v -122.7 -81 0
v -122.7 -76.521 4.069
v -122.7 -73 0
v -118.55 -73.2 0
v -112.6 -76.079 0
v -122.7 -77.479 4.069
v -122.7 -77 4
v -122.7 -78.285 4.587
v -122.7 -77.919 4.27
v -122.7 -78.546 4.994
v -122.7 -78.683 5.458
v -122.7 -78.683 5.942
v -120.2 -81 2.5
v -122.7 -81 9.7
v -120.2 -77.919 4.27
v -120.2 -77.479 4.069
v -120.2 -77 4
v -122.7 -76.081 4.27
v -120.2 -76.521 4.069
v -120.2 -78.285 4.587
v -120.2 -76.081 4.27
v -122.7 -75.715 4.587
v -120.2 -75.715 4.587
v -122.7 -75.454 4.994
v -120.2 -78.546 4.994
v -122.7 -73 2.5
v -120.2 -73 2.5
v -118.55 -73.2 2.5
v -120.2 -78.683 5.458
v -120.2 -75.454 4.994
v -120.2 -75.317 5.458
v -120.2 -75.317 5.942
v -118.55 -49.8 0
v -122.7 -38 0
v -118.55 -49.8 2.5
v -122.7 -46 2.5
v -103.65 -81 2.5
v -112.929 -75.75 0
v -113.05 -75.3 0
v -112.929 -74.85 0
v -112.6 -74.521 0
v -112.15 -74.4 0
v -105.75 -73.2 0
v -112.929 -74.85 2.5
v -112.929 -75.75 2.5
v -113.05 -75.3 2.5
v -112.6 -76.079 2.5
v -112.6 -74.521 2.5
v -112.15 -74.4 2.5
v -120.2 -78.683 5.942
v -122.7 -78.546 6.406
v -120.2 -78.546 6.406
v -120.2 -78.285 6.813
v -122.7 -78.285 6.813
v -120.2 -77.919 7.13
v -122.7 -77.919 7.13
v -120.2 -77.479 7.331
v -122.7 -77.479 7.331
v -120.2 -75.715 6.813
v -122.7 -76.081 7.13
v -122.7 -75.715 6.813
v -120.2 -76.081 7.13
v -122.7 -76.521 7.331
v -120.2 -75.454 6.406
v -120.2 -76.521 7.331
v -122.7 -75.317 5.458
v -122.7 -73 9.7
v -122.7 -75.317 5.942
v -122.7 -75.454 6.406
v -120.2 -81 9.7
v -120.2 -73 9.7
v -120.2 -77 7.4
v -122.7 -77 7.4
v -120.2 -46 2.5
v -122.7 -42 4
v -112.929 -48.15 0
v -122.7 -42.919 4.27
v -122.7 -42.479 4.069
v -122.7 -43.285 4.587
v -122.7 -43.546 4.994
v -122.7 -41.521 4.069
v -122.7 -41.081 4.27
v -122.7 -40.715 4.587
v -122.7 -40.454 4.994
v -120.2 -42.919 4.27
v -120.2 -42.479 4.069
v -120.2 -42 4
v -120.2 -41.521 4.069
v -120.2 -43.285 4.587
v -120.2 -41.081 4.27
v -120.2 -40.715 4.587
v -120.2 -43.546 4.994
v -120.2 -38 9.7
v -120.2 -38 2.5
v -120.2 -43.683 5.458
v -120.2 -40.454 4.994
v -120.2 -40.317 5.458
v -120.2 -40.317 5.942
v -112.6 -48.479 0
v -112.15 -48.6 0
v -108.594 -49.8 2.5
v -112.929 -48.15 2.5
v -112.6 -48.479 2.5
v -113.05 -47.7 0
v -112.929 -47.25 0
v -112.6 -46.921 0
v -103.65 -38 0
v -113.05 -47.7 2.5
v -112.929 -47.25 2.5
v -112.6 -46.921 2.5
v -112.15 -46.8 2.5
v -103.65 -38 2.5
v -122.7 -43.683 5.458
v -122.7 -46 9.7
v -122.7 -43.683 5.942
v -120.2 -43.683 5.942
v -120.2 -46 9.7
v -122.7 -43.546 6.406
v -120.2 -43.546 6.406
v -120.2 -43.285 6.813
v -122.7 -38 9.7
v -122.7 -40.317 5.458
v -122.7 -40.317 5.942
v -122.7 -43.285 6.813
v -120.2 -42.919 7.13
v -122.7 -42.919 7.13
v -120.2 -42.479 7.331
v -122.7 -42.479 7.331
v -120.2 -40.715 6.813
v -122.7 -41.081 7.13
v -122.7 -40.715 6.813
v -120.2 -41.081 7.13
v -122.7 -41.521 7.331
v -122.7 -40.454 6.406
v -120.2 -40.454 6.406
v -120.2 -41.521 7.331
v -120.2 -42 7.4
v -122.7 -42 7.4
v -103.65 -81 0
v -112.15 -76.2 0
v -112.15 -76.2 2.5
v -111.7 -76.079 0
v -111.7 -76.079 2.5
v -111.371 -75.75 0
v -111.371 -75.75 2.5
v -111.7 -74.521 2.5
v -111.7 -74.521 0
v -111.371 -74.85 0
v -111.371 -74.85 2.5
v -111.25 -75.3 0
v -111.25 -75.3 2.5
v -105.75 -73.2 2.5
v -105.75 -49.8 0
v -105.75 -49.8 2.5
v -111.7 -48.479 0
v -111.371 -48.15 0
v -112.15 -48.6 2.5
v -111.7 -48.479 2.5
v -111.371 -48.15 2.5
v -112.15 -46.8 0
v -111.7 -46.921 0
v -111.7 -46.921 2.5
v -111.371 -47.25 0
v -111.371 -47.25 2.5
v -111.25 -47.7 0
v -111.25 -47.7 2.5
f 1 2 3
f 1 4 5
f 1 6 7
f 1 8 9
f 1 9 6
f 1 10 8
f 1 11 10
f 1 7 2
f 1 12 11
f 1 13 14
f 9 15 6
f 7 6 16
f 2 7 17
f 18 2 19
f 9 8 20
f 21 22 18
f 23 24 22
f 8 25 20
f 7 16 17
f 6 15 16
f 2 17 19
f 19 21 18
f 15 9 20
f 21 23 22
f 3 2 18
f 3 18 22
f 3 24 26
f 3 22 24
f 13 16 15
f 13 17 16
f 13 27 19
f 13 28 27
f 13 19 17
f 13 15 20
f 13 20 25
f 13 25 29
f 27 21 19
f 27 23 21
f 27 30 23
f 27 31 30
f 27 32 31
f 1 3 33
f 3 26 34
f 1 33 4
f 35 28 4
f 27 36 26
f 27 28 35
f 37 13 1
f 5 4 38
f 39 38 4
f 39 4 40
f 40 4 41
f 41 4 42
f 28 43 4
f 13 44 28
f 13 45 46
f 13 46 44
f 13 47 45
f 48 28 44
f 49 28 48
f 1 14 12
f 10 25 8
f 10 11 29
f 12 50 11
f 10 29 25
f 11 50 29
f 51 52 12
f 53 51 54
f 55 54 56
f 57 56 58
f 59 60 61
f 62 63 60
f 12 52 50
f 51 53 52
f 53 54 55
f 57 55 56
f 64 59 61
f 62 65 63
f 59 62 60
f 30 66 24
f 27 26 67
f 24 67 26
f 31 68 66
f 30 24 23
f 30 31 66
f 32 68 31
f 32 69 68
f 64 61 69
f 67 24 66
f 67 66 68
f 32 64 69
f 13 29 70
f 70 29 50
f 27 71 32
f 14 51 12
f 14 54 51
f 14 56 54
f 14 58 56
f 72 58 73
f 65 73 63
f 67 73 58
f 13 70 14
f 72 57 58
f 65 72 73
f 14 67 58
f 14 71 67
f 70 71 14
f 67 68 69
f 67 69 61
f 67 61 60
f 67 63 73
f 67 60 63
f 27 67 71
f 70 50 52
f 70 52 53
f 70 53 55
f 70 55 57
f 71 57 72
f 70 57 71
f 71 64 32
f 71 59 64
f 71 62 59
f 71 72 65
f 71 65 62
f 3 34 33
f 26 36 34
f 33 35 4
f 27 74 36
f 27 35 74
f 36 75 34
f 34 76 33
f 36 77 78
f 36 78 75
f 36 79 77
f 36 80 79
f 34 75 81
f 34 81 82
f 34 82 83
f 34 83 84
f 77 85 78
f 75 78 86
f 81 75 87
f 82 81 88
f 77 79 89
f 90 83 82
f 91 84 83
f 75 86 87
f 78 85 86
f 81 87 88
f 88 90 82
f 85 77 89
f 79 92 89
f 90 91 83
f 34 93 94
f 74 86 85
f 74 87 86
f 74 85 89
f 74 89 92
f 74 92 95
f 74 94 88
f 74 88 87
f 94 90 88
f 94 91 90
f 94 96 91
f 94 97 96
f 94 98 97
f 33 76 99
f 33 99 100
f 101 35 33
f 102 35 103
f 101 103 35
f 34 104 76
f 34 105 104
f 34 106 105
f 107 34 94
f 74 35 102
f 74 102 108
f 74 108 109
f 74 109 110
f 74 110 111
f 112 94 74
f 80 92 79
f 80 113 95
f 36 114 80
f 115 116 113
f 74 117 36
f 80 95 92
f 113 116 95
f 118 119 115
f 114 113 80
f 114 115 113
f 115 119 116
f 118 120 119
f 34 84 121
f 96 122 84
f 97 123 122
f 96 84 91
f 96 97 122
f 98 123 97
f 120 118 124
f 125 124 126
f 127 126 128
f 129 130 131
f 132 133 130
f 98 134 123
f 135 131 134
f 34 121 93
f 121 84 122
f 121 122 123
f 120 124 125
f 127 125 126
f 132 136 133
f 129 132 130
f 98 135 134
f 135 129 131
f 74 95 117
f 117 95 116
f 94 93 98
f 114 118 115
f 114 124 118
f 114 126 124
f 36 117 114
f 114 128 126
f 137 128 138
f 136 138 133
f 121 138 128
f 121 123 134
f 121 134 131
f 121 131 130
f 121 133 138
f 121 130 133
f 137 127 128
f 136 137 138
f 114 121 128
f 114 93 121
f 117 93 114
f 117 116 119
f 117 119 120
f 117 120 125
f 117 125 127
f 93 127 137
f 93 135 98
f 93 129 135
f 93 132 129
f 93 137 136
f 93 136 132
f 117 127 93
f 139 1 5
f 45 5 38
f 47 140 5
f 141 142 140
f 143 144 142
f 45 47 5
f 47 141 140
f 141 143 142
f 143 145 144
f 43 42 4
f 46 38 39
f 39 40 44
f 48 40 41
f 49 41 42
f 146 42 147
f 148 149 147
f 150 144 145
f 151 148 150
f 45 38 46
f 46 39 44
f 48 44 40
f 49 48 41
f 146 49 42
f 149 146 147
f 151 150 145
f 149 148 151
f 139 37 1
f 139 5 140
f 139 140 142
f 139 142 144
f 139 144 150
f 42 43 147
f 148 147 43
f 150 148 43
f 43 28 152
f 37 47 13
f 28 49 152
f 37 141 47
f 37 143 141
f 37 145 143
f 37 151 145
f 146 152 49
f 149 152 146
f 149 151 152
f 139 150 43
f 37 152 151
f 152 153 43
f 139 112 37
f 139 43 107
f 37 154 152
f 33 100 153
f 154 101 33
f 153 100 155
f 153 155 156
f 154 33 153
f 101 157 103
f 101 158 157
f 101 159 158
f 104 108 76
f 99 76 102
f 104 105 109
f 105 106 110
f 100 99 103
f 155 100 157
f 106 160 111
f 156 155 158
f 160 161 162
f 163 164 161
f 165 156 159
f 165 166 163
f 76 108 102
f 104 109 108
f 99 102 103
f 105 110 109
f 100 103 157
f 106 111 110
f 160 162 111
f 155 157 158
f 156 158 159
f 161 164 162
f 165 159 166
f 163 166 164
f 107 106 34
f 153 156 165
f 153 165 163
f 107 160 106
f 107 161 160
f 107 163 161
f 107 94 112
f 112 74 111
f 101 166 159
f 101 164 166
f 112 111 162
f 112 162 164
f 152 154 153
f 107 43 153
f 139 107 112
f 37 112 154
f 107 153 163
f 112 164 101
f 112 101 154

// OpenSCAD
// file: lib/lib.scad
// Shared helpers. Include AFTER params.scad (needs TOL, M3_* etc.).
$fa = 4; $fs = 0.5;

module rrect(size, r) {            // 2D rounded rectangle, centred
    r2 = min(r, min(size[0], size[1]) / 2 - 0.001);
    offset(r = r2) square([size[0] - 2 * r2, size[1] - 2 * r2], center = true);
}
module rbox(size, r, center_xy = true) {   // box with rounded vertical edges
    translate(center_xy ? [0, 0, 0] : [size[0] / 2, size[1] / 2, 0])
        linear_extrude(size[2]) rrect([size[0], size[1]], r);
}
module rbox_at(x0, x1, y0, y1, z0, z1, r = 0.01) {
    translate([(x0 + x1) / 2, (y0 + y1) / 2, z0]) rbox([x1 - x0, y1 - y0, z1 - z0], r);
}
module box_at(x0, x1, y0, y1, z0, z1) { translate([x0, y0, z0]) cube([x1 - x0, y1 - y0, z1 - z0]); }

module ring(ro, ri, h) { difference() { cylinder(r = ro, h = h); translate([0, 0, -1]) cylinder(r = ri, h = h + 2); } }
module ring_sector(ro, ri, h, a0, a1) {
    intersection() {
        ring(ro, ri, h);
        linear_extrude(h) polygon(concat([[0, 0]], [for (a = [a0 : (a1 - a0) / 24 : a1]) 2 * ro * [cos(a), sin(a)]]));
    }
}
// teardrop hole along an axis lying horizontal (axis = Y after rotation), printable w/o support
module teardrop2d(d) { union() { circle(d = d); rotate(45) square(d / 2); } }
// vertical heat-set insert hole, opening at z=0 going +z (depth l)
module insert_hole(l = M3_INSERT_L) { translate([0, 0, -EPS]) cylinder(d = M3_INSERT_D, h = l + EPS); }
module m3_clear(l) { translate([0, 0, -EPS]) cylinder(d = M3_CLEAR, h = l + 2 * EPS); }
module m3_csk(l) {  // countersunk clearance from z=0 upward, head at z=0 side
    translate([0, 0, -EPS]) { cylinder(d = M3_CLEAR, h = l + 2 * EPS); cylinder(d1 = 6.4, d2 = M3_CLEAR, h = 1.7); }
}
module card2d() { rrect([CARD_L, CARD_W], CARD_R); }
module card_at(cy, z) { translate([0, cy, z]) linear_extrude(CARD_T) card2d(); }

// ---- gears ----
function _inv(a) = tan(a) - a * PI_ / 180;           // involute function, a in deg
function _invpt(rb, r, ang0, s) = let(al = acos(rb / r), th = ang0 - s * (_inv(al) * 180 / PI_)) [r * cos(th), r * sin(th)];
module involute_gear2d(m, z, pa = 20, clearance = 0.05) {
    rp = m * z / 2; rb = rp * cos(pa); ra = rp + m - clearance; rf = rp - 1.25 * m;
    half = 90 / z + _inv(pa) * 180 / PI_;            // tooth half-angle at base (deg)
    n = 8;
    rs = [for (i = [0 : n]) max(rb, rf) + (ra - max(rb, rf)) * i / n];
    union() {
        circle(r = rf, $fn = z * 4);
        for (k = [0 : z - 1]) rotate(k * 360 / z) polygon(concat(
            [[rf * cos(-half), rf * sin(-half)]],
            [for (r = rs) let(p = _invpt(rb, r, half, 1)) [p[0], -p[1]]],
            [for (i = [n : -1 : 0]) _invpt(rb, rs[i], half, 1)],
            [[rf * cos(half), rf * sin(half)]]));
    }
}
// straight gear rack (2D in XY: teeth along +x, pointing -y, pitch line at y=0)
module gear_rack2d(m, len, back = 3) {
    p = PI_ * m; ad = m; de = 1.25 * m; t = tan(20);
    n = ceil(len / p) + 1;
    intersection() {
        union() {
            translate([0, de]) square([len, back]);
            for (i = [0 : n]) translate([i * p - p / 4, 0]) polygon([
                [-(p / 4 + de * t), de + 0.01], [p / 4 + de * t + 0.01, de + 0.01],
                [p / 4 - ad * t, -ad], [-(p / 4 - ad * t), -ad] ]);
        }
        translate([0, -ad - 1]) square([len, ad + de + back + 2]);
    }
}
// GT2 belt-tooth profile ring (teeth outward), 2D
module gt2_ring2d(n, r_land, ri) {
    union() {
        difference() { circle(r = r_land + 0.01, $fn = n * 2); circle(r = ri, $fn = n * 2); }
        for (k = [0 : n - 1]) rotate(k * 360 / n)
            translate([r_land, 0]) hull() { translate([-0.2, 0]) square([0.2, 1.0], center = true); translate([0.25, 0]) circle(r = 0.5, $fn = 12); }
    }
}
// main file
// Servo plate: holds the MG90S (shaft along -X) under the carrier; screws up into the
// pusher-guide wings. Print: lying on its -X face, flanges up, no supports.
include <params.scad>
include <lib/lib.scad>
e = Z_EJECT;
SM_X0 = 14.3;  SM_X1 = 16.8;
module servo_mount() difference() {
    union() {
        box_at(SM_X0, SM_X1, SERVO_FIX[1][1] - 4, SERVO_FIX[0][1] + 4, PIN_Z - 8.5, WING_Z0);
        for (p = SERVO_FIX) box_at(SM_X0, 24, p[1] - 4, p[1] + 4, WING_Z0 - 2.5, WING_Z0);
    }
    box_at(SM_X0 - 1, SM_X1 + 1, PIN_Y - 16.9 - 1.5 * GAP, PIN_Y + 5.9 + 1.5 * GAP, PIN_Z - 6.1 - 1.5 * GAP, PIN_Z + 6.1 + 1.5 * GAP);
    for (y = [PIN_Y - 19.3, PIN_Y + 8.3]) translate([SM_X0 - 1, y, PIN_Z]) rotate([0, 90, 0]) cylinder(d = M2_PILOT_D, h = 5);
    for (p = SERVO_FIX) translate([p[0], p[1], WING_Z0 - 3]) m3_clear(4);
}
module servo_mount_print() rotate([0, -90, 0]) translate([-SM_X0, 0, 0]) servo_mount();
servo_mount_print();
